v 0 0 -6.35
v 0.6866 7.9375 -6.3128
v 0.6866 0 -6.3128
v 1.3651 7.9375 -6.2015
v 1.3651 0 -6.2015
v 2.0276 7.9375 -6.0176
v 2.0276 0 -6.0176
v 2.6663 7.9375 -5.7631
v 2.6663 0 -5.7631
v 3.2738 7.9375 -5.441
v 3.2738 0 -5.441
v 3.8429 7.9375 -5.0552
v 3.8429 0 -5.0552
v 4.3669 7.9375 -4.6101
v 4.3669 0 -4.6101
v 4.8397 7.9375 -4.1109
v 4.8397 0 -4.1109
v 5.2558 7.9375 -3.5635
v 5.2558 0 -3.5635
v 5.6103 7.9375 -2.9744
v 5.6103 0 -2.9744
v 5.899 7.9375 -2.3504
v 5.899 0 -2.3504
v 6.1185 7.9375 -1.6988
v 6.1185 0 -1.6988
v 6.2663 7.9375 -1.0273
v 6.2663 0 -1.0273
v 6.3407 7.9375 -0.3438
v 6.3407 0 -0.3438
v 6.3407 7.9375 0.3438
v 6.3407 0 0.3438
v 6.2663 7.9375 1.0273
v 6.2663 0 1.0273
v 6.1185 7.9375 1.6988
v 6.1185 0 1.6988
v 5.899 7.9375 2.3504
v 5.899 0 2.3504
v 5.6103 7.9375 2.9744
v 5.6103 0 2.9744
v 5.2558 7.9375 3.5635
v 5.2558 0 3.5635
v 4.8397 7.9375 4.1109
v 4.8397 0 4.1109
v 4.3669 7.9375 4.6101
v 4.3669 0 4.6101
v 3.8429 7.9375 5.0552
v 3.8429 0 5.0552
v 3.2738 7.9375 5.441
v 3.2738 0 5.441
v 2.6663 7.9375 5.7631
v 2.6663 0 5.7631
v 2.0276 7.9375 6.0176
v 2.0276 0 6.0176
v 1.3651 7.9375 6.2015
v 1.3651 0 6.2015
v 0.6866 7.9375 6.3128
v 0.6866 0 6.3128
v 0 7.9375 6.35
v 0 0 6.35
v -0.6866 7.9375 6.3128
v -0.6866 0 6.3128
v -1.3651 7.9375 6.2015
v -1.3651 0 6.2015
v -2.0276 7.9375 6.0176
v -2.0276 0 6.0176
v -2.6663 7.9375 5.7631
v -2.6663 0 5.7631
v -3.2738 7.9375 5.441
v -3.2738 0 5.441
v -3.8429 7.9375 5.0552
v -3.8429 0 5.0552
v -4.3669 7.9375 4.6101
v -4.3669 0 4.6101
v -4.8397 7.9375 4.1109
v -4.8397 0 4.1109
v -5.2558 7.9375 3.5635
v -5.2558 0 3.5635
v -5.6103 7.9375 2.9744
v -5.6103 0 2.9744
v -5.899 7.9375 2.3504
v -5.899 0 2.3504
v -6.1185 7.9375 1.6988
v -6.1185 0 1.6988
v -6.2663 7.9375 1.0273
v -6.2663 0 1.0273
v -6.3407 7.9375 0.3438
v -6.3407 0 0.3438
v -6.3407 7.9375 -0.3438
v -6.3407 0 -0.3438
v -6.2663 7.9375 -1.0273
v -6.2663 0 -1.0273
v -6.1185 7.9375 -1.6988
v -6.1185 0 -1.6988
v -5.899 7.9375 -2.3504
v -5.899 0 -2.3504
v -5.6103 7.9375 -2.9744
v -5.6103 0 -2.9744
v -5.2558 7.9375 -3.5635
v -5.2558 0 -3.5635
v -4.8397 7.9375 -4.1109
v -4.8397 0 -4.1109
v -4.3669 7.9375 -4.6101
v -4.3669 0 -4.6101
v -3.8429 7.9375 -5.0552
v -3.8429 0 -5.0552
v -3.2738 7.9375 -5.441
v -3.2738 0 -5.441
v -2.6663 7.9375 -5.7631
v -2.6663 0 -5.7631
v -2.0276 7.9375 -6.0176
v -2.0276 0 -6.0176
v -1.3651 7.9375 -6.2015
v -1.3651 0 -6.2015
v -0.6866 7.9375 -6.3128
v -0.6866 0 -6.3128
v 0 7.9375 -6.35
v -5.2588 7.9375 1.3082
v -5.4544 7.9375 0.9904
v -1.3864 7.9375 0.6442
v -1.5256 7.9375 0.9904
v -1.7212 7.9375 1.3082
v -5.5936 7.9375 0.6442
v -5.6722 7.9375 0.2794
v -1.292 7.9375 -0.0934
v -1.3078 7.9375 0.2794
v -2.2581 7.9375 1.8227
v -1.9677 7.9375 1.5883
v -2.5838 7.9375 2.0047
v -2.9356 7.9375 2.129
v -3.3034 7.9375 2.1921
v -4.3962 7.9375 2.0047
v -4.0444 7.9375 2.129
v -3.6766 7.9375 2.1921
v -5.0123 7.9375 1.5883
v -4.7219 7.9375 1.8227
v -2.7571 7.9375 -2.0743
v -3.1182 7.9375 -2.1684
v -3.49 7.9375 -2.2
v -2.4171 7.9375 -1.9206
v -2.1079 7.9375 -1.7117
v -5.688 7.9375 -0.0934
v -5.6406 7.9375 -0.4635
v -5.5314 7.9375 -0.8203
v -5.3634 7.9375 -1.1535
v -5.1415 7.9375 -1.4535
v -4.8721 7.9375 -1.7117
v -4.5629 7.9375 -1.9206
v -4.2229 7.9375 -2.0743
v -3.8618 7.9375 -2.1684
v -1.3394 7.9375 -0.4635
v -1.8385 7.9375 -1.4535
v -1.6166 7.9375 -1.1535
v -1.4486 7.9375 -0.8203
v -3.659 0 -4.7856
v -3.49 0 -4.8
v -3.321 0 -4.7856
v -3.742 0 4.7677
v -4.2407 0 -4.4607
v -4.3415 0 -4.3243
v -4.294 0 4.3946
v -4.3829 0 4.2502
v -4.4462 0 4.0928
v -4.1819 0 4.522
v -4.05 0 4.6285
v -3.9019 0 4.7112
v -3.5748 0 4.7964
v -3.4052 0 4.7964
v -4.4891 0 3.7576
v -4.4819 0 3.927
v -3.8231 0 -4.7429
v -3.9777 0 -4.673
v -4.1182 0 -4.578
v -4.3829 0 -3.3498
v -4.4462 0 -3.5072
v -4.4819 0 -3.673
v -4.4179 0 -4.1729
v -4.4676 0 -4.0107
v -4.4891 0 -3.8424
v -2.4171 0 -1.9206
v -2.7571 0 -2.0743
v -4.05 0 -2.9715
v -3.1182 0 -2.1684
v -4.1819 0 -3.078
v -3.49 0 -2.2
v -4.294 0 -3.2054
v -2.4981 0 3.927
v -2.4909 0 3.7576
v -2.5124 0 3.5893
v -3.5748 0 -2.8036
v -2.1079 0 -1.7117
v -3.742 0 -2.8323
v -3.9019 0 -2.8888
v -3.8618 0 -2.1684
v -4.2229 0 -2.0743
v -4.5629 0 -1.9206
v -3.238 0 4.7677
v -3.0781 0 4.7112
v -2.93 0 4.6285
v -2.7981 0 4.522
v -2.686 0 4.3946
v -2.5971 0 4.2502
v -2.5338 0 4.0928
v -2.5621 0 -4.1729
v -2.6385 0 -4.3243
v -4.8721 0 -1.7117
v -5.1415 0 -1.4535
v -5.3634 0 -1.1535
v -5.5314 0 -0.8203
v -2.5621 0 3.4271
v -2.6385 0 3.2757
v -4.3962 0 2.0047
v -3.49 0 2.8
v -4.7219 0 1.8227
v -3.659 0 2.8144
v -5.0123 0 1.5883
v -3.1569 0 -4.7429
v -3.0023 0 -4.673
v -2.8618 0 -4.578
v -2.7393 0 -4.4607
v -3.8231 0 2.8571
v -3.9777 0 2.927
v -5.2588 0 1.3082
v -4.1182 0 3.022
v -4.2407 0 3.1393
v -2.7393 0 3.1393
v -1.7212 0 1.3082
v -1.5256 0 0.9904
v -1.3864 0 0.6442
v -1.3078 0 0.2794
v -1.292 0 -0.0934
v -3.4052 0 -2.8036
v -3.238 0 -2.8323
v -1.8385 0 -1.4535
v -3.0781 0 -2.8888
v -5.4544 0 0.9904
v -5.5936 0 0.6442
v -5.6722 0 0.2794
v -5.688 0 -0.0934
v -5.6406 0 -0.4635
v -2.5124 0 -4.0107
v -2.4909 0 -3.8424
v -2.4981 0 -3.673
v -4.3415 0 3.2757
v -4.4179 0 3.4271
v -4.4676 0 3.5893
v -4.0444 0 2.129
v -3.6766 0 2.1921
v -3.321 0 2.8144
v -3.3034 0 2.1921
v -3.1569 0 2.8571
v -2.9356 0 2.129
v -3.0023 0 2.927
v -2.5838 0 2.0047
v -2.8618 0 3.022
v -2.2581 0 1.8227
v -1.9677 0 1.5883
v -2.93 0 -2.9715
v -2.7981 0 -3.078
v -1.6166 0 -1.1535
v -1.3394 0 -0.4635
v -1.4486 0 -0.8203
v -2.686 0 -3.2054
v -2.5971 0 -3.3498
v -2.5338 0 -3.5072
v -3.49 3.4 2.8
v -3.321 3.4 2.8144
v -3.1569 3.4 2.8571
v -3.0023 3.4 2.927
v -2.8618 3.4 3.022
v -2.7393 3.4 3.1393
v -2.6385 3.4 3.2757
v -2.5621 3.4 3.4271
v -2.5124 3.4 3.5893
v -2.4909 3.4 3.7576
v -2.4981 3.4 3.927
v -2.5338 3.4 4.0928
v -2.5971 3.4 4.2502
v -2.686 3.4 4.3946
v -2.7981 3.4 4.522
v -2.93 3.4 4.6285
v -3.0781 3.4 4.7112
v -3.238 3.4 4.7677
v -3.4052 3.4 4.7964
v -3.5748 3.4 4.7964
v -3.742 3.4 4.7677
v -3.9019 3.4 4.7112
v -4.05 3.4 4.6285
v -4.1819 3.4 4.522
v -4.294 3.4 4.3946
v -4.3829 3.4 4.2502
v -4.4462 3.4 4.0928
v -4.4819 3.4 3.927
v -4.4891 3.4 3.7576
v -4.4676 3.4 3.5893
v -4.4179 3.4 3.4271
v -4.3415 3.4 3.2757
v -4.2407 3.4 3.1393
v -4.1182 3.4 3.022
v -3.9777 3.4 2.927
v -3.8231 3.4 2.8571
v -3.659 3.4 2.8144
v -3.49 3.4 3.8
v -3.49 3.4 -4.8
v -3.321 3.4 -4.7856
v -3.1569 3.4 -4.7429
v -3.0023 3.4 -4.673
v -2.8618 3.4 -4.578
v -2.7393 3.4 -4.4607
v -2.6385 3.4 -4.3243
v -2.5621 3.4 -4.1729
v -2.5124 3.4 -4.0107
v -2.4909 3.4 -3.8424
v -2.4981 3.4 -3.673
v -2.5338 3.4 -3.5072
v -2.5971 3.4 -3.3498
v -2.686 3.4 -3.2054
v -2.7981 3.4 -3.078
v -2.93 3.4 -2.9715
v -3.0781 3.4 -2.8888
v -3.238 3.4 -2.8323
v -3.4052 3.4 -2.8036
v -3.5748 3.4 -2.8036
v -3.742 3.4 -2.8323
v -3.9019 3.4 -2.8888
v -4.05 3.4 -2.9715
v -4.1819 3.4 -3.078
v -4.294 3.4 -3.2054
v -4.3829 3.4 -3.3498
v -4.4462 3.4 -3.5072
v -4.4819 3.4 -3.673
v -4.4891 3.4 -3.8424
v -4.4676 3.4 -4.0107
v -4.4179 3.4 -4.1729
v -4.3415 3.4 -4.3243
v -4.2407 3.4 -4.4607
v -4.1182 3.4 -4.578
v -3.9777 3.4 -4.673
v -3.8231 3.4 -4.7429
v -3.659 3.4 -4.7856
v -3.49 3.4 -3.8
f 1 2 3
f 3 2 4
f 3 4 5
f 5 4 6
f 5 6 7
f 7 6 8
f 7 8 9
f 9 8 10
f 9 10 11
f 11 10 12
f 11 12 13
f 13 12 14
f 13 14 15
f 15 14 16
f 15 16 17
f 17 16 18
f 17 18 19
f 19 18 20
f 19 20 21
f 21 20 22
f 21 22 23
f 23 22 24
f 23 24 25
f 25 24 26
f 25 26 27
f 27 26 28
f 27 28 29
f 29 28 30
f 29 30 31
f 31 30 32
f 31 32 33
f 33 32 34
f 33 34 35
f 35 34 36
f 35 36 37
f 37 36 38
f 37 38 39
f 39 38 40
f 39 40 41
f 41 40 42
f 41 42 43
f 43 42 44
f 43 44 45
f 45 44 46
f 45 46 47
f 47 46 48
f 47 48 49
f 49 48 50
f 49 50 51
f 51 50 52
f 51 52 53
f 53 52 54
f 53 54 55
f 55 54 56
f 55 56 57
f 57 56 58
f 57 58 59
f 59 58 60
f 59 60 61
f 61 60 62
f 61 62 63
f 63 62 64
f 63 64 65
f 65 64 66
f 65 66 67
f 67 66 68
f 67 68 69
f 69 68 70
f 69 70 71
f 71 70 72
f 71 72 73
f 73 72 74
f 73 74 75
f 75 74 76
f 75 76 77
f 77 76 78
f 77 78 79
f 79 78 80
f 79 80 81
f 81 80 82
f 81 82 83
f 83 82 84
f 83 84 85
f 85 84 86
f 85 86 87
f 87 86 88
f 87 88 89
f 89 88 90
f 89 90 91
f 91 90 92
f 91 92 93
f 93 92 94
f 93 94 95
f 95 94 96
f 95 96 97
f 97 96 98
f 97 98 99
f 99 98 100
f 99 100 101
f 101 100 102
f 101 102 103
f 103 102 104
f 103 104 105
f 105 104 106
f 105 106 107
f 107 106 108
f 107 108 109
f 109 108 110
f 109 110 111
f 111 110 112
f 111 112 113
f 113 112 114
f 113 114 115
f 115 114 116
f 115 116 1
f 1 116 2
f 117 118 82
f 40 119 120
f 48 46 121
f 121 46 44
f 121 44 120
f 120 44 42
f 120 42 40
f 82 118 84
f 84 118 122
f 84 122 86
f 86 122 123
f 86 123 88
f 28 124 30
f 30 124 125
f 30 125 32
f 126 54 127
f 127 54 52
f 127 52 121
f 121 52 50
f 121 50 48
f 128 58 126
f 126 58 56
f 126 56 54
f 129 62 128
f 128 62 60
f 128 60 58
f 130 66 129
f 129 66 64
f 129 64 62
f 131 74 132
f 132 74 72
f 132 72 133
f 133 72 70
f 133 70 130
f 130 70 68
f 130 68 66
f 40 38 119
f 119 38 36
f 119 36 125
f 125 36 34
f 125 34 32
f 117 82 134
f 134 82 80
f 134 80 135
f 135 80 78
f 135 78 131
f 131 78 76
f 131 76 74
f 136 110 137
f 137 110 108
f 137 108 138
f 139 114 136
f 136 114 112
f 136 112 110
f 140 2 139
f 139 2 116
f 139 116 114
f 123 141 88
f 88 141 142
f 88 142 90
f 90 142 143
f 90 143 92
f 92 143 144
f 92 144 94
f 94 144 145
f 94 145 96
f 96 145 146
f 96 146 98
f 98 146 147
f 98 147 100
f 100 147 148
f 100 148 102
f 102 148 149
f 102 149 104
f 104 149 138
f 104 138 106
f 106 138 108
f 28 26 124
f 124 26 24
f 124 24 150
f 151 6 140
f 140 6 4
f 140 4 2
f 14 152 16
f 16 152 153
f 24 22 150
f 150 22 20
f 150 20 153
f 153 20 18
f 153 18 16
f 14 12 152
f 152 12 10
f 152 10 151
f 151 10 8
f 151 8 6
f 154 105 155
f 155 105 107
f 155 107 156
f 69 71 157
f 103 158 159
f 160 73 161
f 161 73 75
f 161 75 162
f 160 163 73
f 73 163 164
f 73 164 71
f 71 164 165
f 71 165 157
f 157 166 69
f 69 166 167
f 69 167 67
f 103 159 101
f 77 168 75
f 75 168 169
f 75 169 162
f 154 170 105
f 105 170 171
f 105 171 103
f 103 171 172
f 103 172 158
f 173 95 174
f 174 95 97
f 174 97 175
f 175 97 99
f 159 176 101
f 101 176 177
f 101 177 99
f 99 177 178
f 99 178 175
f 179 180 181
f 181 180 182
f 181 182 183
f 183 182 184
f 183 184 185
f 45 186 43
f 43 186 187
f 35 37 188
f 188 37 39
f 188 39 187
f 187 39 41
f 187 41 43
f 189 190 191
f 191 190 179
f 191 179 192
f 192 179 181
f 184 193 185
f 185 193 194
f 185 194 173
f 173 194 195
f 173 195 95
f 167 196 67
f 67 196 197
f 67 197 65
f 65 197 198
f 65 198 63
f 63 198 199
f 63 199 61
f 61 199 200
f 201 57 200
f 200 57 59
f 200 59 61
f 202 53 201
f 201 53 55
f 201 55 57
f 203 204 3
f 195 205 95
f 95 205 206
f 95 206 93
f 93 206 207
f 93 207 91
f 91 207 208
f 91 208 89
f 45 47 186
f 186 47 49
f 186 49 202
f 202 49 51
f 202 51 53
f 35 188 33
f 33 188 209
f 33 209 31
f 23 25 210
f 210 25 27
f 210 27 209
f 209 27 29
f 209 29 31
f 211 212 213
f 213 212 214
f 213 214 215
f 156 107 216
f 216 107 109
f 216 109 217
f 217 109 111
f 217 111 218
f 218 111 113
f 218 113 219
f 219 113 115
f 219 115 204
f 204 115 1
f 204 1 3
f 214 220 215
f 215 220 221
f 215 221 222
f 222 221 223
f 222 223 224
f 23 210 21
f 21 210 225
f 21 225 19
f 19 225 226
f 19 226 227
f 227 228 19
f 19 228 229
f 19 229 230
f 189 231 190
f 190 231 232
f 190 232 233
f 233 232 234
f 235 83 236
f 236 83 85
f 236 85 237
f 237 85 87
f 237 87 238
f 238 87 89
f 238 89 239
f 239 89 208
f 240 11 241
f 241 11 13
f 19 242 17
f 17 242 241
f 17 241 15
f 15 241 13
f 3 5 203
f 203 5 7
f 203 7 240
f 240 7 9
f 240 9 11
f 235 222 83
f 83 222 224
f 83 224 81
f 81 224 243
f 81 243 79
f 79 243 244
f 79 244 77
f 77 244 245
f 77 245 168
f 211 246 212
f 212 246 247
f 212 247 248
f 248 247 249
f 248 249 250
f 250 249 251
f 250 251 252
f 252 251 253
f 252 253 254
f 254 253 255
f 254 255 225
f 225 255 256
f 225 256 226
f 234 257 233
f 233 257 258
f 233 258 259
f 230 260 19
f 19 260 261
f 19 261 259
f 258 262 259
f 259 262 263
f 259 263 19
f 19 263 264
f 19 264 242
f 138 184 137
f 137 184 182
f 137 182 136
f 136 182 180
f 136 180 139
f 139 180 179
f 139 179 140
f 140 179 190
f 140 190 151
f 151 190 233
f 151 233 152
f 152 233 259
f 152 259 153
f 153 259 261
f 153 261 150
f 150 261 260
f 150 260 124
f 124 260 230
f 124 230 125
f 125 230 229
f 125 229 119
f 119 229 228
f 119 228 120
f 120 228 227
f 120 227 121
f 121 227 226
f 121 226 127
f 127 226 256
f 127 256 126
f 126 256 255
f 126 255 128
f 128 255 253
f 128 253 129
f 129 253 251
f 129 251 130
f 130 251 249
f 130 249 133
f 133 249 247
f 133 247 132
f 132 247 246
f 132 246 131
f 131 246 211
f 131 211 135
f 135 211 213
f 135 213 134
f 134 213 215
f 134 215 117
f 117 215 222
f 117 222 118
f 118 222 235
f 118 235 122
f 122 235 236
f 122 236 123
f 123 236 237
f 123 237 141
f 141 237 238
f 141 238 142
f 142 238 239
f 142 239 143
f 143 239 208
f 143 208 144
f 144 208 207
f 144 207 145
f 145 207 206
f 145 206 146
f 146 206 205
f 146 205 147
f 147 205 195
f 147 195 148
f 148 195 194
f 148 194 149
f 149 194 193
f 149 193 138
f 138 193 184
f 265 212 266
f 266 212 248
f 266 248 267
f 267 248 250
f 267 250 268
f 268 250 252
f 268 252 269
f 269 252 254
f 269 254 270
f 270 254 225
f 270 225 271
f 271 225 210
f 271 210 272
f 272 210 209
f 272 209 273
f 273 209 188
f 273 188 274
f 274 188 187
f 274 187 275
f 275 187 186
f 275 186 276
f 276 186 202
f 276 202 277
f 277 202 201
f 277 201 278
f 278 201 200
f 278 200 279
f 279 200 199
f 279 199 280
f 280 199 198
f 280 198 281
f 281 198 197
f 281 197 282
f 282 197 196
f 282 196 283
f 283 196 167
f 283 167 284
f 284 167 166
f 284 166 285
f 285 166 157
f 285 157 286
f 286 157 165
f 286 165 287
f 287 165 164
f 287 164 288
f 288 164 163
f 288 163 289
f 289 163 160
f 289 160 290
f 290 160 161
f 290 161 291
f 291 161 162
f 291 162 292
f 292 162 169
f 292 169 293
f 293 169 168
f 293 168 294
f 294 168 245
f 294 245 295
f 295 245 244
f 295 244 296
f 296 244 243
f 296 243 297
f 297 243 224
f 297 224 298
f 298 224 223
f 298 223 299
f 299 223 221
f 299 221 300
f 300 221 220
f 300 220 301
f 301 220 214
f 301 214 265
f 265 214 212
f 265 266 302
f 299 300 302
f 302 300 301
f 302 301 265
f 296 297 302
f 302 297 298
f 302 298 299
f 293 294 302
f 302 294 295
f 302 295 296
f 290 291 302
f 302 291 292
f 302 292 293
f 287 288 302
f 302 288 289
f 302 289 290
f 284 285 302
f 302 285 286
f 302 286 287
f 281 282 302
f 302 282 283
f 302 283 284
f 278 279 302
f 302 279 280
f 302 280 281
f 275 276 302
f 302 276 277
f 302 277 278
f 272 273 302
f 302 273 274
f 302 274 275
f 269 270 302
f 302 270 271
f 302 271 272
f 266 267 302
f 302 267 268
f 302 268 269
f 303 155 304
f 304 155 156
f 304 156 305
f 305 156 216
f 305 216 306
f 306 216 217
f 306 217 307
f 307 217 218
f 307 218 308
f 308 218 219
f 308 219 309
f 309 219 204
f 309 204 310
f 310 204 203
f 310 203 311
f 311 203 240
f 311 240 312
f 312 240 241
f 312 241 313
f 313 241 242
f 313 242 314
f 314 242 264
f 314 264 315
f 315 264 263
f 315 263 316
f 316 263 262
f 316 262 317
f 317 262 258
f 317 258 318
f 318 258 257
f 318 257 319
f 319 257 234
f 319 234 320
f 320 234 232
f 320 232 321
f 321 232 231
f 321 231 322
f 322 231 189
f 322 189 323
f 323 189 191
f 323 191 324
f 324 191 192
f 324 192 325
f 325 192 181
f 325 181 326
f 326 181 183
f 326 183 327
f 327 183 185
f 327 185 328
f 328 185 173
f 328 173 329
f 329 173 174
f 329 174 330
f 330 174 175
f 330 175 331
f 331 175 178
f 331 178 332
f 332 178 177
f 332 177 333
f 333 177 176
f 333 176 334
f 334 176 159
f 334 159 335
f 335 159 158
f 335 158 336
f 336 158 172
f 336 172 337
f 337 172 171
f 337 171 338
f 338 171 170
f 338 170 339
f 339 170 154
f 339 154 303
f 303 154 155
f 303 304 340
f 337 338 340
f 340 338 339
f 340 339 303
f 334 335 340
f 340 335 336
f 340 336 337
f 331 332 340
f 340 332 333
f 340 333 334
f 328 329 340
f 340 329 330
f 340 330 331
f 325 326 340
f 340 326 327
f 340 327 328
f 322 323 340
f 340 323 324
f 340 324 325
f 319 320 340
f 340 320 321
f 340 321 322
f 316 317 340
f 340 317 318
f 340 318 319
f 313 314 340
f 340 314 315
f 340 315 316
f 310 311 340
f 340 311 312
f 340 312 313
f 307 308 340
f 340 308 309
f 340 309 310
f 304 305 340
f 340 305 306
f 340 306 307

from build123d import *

# Parameters (mm, degrees)
SKETCH1_R           = 6.35
BOSS_EXTRUDE1_DEPTH = 7.9375
SKETCH2_R           = 2.2
CUT_EXTRUDE1_DEPTH  = 12.985362166
SKETCH3_R           = 1
CUT_EXTRUDE2_DEPTH  = 3.4


with BuildPart() as part:
    # Sketch1 → Boss-Extrude1 (new body)
    with BuildSketch(Plane(origin=(0, 0, 0), x_dir=(1, 0, 0), z_dir=(0, 1, 0))):
        with Locations(Location((0, 0, 0), (0, 0, 270))):
            Circle(SKETCH1_R)
    extrude(amount=BOSS_EXTRUDE1_DEPTH)

    # Sketch2 → Cut-Extrude1 (cut, through all)
    with BuildSketch(Plane.XZ):
        with Locations(Location((-3.49, 0, 0), (0, 0, 270))):
            Circle(SKETCH2_R)
    extrude(amount=-CUT_EXTRUDE1_DEPTH, mode=Mode.SUBTRACT)

    # Sketch3 → Cut-Extrude2 (cut)
    with BuildSketch(Plane.XZ):
        with Locations(Location((-3.49, -3.8, 0), (0, 0, 270))):
            Circle(SKETCH3_R)
        with Locations(Location((-3.49, 3.8, 0), (0, 0, 270))):
            Circle(SKETCH3_R)
    extrude(amount=-CUT_EXTRUDE2_DEPTH, mode=Mode.SUBTRACT)


solid = part.part
